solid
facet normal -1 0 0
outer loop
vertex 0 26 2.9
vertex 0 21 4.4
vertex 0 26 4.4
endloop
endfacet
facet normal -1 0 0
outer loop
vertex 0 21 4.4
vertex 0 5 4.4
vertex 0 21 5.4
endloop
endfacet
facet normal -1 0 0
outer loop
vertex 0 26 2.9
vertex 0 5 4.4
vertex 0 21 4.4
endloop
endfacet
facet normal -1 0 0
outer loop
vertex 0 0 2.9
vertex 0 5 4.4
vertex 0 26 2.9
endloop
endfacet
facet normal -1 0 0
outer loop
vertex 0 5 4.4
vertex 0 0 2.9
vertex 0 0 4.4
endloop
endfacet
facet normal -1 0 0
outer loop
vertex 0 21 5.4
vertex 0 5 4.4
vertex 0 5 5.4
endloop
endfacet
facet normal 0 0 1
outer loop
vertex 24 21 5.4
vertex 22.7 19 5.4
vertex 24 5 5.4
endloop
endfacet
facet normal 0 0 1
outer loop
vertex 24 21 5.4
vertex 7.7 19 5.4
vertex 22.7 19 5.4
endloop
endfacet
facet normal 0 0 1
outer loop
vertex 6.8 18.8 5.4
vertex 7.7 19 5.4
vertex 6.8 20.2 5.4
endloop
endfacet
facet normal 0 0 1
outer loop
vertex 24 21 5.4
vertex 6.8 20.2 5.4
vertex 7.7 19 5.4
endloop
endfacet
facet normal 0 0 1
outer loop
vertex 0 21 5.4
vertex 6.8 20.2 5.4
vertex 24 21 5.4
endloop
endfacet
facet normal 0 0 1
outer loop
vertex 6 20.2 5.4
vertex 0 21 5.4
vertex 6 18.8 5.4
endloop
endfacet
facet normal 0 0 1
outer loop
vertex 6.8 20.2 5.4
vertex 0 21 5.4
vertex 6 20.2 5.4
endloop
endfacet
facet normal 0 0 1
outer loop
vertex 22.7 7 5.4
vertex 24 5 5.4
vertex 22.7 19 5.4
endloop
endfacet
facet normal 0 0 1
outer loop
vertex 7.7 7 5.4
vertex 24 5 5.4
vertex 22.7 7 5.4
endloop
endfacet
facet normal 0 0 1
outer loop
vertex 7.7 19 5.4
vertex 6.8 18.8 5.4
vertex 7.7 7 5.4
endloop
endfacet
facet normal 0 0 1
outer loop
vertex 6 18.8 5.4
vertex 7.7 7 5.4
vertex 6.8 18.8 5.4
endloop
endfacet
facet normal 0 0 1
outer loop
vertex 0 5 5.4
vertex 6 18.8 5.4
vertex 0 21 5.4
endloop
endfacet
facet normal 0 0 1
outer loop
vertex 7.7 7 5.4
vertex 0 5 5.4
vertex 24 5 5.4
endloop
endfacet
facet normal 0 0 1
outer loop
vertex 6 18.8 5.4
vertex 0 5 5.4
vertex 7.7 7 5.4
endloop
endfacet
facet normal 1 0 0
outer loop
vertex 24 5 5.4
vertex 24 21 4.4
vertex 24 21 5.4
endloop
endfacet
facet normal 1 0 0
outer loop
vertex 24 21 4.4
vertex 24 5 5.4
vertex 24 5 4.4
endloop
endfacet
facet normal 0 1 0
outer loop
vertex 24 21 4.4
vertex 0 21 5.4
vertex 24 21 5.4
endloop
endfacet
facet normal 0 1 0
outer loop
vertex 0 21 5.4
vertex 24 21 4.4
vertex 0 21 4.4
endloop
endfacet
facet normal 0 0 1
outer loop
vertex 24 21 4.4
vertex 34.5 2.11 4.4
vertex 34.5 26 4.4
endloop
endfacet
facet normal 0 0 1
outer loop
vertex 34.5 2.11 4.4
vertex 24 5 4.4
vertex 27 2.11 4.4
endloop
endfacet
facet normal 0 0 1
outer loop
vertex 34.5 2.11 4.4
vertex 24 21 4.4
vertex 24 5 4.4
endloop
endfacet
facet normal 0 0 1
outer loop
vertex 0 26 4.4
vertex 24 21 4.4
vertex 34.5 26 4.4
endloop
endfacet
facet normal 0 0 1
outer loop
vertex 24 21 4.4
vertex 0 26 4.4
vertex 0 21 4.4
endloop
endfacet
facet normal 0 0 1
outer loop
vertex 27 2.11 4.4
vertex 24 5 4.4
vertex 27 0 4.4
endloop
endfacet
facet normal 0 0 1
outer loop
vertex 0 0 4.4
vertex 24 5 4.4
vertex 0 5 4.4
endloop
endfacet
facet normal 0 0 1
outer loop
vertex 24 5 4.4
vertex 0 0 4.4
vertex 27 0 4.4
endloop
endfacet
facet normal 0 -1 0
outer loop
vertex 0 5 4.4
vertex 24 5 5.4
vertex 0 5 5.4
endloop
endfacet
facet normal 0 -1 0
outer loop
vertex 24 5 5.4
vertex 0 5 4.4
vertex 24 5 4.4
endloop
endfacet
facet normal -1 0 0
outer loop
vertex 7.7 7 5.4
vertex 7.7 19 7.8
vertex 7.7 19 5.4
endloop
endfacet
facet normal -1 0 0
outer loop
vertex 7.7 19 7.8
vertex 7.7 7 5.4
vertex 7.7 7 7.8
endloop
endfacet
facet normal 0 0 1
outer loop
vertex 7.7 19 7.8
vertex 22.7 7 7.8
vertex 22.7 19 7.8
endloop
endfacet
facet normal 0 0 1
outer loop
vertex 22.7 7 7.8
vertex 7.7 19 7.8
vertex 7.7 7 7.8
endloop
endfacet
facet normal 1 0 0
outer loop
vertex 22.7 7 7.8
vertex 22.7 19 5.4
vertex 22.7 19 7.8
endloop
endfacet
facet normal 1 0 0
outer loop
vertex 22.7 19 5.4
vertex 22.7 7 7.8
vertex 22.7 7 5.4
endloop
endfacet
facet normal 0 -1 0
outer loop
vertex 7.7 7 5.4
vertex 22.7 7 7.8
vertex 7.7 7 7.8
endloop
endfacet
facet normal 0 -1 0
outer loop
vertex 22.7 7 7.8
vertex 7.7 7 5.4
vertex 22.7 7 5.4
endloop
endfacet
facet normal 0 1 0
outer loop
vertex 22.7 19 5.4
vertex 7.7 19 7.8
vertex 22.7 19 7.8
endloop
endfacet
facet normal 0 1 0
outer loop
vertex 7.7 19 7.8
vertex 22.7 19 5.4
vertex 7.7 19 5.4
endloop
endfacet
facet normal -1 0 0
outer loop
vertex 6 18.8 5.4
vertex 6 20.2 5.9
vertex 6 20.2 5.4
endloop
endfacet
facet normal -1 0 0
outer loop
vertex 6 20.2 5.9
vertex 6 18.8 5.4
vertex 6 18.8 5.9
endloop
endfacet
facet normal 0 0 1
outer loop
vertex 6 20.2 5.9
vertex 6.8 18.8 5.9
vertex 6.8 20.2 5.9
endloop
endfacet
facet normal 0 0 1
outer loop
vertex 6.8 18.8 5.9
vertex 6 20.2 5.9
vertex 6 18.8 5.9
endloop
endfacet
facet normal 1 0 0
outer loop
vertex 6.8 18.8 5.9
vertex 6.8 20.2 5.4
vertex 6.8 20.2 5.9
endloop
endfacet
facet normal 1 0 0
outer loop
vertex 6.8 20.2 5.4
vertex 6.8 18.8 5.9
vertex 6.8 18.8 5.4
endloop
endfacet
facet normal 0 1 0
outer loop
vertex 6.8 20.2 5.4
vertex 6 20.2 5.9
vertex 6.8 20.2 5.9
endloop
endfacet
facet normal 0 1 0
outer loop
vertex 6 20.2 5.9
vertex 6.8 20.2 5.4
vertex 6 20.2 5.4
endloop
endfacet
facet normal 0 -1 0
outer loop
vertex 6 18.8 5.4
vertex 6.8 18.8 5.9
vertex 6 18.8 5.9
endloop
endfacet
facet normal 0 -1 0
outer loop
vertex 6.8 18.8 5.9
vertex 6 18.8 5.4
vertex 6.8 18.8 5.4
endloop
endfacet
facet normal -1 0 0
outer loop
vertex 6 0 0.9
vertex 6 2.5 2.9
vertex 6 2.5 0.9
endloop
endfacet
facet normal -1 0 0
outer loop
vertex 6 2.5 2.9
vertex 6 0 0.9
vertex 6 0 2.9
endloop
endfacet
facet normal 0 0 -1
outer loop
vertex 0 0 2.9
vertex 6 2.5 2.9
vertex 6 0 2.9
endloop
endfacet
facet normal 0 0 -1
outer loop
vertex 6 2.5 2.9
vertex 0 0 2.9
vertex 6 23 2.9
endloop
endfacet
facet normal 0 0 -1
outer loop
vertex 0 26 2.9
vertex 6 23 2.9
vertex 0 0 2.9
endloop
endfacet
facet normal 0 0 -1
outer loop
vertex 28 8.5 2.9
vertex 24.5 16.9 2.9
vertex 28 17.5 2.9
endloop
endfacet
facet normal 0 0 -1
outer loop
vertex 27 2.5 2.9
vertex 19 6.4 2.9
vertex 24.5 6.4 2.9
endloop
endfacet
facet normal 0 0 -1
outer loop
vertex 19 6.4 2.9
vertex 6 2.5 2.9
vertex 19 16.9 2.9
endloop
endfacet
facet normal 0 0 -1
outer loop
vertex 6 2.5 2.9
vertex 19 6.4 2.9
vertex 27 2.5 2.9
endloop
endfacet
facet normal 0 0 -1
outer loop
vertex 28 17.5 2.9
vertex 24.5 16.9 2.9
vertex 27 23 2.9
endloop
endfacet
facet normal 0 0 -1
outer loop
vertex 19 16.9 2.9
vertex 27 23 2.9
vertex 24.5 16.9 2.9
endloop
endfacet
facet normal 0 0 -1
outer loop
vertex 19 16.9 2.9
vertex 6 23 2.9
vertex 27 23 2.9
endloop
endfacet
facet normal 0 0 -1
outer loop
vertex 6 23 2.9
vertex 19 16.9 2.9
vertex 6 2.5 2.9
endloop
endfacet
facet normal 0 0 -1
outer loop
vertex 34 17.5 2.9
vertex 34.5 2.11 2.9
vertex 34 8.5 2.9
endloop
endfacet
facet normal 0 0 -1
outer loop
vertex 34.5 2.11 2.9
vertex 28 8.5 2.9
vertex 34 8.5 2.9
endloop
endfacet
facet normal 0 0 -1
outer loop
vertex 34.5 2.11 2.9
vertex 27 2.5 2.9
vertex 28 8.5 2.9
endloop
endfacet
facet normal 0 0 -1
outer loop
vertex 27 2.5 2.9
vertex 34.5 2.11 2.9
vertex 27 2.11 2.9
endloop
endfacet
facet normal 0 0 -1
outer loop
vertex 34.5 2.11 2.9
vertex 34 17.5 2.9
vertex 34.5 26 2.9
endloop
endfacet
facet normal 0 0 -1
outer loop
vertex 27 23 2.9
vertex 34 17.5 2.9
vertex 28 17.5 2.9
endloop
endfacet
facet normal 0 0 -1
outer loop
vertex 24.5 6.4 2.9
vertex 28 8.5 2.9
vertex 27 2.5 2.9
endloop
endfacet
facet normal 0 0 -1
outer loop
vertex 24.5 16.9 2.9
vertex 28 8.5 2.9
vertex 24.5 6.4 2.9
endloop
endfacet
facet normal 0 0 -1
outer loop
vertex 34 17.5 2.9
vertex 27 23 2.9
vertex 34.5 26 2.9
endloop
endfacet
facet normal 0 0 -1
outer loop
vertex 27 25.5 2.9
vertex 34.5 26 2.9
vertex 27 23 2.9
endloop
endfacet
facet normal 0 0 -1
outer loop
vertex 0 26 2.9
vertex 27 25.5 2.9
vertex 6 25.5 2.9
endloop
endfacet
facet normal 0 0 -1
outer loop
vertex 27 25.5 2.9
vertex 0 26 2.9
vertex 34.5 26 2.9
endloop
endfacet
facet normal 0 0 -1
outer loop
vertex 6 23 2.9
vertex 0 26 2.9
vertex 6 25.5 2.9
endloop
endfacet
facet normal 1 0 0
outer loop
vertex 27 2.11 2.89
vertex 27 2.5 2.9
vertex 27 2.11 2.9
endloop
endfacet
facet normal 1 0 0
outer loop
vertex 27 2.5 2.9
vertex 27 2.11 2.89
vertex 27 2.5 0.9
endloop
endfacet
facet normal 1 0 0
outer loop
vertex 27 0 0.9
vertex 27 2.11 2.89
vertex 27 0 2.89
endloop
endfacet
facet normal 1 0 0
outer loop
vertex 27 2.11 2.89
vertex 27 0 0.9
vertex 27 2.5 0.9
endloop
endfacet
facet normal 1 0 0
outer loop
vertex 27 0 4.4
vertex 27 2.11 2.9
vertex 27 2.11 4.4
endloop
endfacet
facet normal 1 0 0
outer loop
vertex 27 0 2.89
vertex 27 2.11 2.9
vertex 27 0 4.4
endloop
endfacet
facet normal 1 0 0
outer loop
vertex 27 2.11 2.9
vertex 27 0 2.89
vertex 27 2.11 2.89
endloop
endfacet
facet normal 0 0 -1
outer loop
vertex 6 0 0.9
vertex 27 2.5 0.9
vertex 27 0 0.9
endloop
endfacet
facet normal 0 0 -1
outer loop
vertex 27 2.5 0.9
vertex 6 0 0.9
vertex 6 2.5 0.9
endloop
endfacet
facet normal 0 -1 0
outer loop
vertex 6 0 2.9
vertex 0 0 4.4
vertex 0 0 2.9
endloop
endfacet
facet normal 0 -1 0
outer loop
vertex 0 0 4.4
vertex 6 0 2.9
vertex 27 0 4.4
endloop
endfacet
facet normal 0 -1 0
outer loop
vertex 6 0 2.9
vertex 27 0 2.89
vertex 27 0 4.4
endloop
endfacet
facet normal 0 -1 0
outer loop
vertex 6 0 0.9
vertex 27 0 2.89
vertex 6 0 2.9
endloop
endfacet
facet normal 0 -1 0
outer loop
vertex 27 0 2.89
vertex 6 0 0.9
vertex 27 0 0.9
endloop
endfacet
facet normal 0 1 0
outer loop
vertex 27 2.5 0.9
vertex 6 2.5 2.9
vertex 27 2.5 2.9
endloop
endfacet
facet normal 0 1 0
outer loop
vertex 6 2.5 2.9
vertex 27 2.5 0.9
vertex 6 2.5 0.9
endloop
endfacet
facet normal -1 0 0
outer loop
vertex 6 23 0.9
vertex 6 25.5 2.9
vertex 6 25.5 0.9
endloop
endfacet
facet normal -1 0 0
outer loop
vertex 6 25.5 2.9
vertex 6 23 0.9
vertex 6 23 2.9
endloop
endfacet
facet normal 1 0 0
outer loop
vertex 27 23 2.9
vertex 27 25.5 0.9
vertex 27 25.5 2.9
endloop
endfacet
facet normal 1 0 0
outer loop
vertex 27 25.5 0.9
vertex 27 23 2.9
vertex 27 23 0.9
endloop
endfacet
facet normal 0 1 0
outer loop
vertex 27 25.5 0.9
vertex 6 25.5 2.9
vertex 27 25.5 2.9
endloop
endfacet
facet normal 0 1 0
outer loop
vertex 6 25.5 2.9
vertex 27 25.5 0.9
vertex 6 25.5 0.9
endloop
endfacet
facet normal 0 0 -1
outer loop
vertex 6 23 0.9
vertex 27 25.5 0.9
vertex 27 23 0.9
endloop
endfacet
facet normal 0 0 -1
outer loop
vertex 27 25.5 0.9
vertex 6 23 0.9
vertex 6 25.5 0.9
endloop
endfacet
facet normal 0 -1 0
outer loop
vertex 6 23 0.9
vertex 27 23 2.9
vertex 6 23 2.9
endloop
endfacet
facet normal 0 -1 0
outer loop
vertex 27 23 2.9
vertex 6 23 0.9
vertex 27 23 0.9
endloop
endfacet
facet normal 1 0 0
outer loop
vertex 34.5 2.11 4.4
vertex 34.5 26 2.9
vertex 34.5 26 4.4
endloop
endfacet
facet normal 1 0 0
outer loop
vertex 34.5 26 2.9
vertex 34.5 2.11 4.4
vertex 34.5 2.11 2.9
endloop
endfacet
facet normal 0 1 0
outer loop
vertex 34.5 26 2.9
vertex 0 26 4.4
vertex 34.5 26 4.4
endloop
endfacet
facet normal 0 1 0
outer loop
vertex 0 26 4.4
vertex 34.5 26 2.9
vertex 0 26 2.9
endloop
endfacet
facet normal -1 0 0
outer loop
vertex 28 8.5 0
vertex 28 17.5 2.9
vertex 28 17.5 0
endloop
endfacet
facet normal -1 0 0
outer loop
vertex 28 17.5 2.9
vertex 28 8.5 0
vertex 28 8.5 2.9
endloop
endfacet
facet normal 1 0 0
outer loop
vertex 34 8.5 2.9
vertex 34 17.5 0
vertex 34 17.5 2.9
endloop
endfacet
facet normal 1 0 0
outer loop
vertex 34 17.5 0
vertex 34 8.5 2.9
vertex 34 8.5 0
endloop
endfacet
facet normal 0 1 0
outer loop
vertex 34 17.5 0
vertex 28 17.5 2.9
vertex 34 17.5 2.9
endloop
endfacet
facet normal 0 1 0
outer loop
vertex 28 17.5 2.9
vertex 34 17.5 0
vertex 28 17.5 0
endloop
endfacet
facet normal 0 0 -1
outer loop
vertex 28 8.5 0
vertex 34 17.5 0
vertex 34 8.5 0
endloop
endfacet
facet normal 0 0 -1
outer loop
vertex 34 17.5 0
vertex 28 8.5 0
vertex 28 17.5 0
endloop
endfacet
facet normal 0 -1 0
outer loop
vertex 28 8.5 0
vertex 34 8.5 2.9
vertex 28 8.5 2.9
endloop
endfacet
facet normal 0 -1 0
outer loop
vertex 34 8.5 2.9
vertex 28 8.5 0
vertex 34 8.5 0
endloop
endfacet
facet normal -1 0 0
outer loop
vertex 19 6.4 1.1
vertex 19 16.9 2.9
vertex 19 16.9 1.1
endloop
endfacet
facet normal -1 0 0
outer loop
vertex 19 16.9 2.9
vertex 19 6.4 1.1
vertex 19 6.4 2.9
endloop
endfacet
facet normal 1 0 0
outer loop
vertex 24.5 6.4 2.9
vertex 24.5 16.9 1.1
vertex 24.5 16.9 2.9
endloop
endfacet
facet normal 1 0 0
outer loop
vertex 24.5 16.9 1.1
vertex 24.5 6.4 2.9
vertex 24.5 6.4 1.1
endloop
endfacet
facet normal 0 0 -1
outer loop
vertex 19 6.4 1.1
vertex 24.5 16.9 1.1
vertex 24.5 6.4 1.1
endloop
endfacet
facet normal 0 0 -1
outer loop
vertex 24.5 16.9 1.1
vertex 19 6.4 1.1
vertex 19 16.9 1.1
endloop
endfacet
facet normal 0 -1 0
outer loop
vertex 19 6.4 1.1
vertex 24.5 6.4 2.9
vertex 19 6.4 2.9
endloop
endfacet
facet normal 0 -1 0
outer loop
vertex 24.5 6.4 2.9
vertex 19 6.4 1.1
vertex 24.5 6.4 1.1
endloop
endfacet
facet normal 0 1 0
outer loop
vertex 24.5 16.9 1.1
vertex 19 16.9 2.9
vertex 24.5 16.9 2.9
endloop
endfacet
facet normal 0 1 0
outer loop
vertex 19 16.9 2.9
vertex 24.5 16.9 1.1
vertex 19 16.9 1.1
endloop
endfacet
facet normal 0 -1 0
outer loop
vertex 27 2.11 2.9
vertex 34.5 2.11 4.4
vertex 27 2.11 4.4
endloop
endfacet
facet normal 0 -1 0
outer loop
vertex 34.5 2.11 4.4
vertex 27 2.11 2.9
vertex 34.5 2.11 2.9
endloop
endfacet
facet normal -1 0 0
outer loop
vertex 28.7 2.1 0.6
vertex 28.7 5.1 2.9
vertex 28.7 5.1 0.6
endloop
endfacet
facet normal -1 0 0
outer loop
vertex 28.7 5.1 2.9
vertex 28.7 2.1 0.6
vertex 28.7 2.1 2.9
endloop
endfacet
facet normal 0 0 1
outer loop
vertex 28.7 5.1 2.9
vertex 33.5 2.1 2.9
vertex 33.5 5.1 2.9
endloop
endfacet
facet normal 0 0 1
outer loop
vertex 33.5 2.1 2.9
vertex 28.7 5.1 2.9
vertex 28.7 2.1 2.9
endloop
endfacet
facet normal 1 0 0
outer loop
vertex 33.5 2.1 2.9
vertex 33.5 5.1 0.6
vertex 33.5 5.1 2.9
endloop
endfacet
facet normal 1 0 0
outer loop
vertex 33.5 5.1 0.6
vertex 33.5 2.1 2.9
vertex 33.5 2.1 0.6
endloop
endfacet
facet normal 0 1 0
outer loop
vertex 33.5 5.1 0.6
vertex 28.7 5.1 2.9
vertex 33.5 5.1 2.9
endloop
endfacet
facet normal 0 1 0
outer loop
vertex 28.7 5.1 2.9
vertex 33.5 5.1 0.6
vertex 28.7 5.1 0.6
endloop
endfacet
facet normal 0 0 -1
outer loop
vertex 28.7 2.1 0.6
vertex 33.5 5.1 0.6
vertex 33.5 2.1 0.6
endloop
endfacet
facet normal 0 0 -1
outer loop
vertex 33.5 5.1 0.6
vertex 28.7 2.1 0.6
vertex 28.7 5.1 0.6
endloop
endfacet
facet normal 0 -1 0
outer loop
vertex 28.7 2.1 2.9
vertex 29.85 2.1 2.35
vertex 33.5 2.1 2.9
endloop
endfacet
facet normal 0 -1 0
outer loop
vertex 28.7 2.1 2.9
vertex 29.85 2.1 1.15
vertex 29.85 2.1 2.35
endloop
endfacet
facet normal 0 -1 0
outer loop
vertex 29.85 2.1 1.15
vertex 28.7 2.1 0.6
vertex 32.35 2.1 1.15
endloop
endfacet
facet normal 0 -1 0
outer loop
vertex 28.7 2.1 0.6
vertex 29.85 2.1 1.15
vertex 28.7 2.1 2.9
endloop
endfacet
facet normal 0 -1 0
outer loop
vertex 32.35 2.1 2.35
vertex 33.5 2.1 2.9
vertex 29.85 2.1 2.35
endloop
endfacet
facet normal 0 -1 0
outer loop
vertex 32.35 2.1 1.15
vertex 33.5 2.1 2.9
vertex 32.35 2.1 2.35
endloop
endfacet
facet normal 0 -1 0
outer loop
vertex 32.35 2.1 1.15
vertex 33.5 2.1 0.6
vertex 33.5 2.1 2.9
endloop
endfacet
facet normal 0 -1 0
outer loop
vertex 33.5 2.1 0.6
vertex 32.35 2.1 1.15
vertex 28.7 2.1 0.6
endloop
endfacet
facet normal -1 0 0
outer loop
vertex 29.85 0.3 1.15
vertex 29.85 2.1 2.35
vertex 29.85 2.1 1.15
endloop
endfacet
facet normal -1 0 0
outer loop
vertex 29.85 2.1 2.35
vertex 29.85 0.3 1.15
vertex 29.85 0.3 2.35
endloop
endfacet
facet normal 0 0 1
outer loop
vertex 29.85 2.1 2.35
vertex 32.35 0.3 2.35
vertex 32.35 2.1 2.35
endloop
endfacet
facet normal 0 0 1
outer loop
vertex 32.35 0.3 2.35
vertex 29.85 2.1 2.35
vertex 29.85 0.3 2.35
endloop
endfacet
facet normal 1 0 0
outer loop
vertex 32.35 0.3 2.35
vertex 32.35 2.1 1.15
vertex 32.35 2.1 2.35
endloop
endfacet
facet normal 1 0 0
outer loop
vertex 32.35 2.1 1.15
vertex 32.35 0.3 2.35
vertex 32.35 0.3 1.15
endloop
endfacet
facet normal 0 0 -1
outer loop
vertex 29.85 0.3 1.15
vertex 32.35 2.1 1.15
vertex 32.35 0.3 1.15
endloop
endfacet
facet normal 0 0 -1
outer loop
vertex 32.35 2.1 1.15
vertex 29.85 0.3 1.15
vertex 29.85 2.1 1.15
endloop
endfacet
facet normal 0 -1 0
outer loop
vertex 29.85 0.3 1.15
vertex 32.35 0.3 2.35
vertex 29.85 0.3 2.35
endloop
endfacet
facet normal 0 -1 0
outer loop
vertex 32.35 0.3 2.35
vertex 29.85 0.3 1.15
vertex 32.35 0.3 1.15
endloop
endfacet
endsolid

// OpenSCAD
//This is a model of the ESP8266 D1 mini 
//It can be used for case design.

/* [Size Adjustments] */
//This comment will describe the variable below it in the customizer
customizer_variable=0; //mm

//Material used (to adjust for shrinkage)
Material="PLA";//[PLA, ABS, TPU, PETG]

/* [Hidden] */
//board
boardWidth=26;
boardLength=34.5;
boardThickness=1.5; //PC board only

//WiFi board
wifiLength=24;
wifiWidth=16;
wifiThickness=1;
wifiLocationX=0; //antenna to the left
wifiLocationY=5;

//RF Can
canLength=15;
canWidth=12;
canThickness=2.4;
canLocationX=7.7; //on the wifi board, from the antenna side
canLocationY=2;   //on the wifi board
 
//LED
ledLength=0.8;
ledWidth=1.4;
ledThickness=0.5;
ledLocationX=6;   //from edge of wifi board
ledLocationY=13.8;//from edge of wifi board

//reset switch
resetNotchLength=7.5;
resetNotchWidth=2.1;
resetNotchLocationX=27;
resetButtonBodyLength=4.8;
resetButtonBodyWidth=3;
resetButtonBodyThickness=2.3;
resetButtonBodyLocationX=30.2-resetButtonBodyWidth/2;
resetButtonBodyLocationY=resetNotchWidth;
resetButtonLength=2.5;
resetButtonWidth=1.8;
resetButtonThickness=1.2;
resetButtonLocationX=resetButtonBodyLength/2-resetButtonLength/2; //relative to resetButtonBodyLocationX
resetButtonLocationY=resetButtonBodyLocationY-resetButtonWidth;

//USB port
usbLength=6;
usbWidth=9;
usbThickness=2.9;
usbLocationX=28;
usbLocationY=boardWidth/2-usbWidth/2; //centered in Y direction

//chip
chipLength=10.5;
chipWidth=5.5;
chipThickness=1.8;
chipLocationX=19;
chipLocationY=6.4;

//room for solder connections
pinsWidth=2.5;
pinsLength=21;
pinsThickness=2;
pinsLocationX=6;
pinsLocationY1=0;
pinsLocationY2=23;

shrink=[
  ["ABS",0.7],
  ["PLA",0.2],
  ["TPU",0.2],
  ["PETG",0.4]
  ];
temp=search([Material],shrink);
shrinkPCT=shrink[temp[0]][1];
fudge=.02;  //mm, used to keep removal areas non-congruent
shrinkFactor=1+shrinkPCT/100;
$fn=200;
nozzleDiameter=.4;
x=0;
y=1;
z=2;

module go()
  {
  difference()
    {
    solids();
    holes();
    }
  extra();
  }

module solids()
  {
  //main circuit board
  cube([boardLength, boardWidth, boardThickness]);

  //wifi board
  translate([wifiLocationX,wifiLocationY,boardThickness])
    {
    cube([wifiLength,wifiWidth,wifiThickness]);

    //RF can
    translate([canLocationX,canLocationY,wifiThickness])
      {
      cube([canLength,canWidth,canThickness]);
      }

    //LED
    translate([ledLocationX,ledLocationY,wifiThickness])
      {
      cube([ledLength,ledWidth,ledThickness]);
      }
    }

  // USB port
  translate([usbLocationX,usbLocationY,-usbThickness])
    {
    cube([usbLength,usbWidth,usbThickness]);
    }

  //chip
  translate([chipLocationX,chipLocationY,0-chipThickness])
    {
    cube([chipWidth,chipLength,chipThickness]);
    }

  //pins (for solder space)
  translate([pinsLocationX,pinsLocationY1,0-pinsThickness])
    {
    cube([pinsLength,pinsWidth,pinsThickness]);
    translate([0,pinsLocationY2,0])
      {
      cube([pinsLength,pinsWidth,pinsThickness]);
      }
    }
  }

module holes()
  {
  //Reset button notch
  translate([resetNotchLocationX,0-fudge/2,0-fudge/2])
    {
    cube([resetNotchLength+fudge,resetNotchWidth+fudge,boardThickness+fudge]);
    }
  }

module extra()
  {
  //Reset button
  translate([resetButtonBodyLocationX,resetButtonBodyLocationY,-resetButtonBodyThickness])
    {
    cube([resetButtonBodyLength,resetButtonBodyWidth,resetButtonBodyThickness]);
    translate([resetButtonLocationX,-resetButtonWidth,resetButtonBodyThickness/2-resetButtonThickness/2])
      {
      cube([resetButtonLength,resetButtonWidth,resetButtonThickness]);
      }
    }

  }
  
translate([0,0,usbThickness]) //USB port sticks down the most
  go();
